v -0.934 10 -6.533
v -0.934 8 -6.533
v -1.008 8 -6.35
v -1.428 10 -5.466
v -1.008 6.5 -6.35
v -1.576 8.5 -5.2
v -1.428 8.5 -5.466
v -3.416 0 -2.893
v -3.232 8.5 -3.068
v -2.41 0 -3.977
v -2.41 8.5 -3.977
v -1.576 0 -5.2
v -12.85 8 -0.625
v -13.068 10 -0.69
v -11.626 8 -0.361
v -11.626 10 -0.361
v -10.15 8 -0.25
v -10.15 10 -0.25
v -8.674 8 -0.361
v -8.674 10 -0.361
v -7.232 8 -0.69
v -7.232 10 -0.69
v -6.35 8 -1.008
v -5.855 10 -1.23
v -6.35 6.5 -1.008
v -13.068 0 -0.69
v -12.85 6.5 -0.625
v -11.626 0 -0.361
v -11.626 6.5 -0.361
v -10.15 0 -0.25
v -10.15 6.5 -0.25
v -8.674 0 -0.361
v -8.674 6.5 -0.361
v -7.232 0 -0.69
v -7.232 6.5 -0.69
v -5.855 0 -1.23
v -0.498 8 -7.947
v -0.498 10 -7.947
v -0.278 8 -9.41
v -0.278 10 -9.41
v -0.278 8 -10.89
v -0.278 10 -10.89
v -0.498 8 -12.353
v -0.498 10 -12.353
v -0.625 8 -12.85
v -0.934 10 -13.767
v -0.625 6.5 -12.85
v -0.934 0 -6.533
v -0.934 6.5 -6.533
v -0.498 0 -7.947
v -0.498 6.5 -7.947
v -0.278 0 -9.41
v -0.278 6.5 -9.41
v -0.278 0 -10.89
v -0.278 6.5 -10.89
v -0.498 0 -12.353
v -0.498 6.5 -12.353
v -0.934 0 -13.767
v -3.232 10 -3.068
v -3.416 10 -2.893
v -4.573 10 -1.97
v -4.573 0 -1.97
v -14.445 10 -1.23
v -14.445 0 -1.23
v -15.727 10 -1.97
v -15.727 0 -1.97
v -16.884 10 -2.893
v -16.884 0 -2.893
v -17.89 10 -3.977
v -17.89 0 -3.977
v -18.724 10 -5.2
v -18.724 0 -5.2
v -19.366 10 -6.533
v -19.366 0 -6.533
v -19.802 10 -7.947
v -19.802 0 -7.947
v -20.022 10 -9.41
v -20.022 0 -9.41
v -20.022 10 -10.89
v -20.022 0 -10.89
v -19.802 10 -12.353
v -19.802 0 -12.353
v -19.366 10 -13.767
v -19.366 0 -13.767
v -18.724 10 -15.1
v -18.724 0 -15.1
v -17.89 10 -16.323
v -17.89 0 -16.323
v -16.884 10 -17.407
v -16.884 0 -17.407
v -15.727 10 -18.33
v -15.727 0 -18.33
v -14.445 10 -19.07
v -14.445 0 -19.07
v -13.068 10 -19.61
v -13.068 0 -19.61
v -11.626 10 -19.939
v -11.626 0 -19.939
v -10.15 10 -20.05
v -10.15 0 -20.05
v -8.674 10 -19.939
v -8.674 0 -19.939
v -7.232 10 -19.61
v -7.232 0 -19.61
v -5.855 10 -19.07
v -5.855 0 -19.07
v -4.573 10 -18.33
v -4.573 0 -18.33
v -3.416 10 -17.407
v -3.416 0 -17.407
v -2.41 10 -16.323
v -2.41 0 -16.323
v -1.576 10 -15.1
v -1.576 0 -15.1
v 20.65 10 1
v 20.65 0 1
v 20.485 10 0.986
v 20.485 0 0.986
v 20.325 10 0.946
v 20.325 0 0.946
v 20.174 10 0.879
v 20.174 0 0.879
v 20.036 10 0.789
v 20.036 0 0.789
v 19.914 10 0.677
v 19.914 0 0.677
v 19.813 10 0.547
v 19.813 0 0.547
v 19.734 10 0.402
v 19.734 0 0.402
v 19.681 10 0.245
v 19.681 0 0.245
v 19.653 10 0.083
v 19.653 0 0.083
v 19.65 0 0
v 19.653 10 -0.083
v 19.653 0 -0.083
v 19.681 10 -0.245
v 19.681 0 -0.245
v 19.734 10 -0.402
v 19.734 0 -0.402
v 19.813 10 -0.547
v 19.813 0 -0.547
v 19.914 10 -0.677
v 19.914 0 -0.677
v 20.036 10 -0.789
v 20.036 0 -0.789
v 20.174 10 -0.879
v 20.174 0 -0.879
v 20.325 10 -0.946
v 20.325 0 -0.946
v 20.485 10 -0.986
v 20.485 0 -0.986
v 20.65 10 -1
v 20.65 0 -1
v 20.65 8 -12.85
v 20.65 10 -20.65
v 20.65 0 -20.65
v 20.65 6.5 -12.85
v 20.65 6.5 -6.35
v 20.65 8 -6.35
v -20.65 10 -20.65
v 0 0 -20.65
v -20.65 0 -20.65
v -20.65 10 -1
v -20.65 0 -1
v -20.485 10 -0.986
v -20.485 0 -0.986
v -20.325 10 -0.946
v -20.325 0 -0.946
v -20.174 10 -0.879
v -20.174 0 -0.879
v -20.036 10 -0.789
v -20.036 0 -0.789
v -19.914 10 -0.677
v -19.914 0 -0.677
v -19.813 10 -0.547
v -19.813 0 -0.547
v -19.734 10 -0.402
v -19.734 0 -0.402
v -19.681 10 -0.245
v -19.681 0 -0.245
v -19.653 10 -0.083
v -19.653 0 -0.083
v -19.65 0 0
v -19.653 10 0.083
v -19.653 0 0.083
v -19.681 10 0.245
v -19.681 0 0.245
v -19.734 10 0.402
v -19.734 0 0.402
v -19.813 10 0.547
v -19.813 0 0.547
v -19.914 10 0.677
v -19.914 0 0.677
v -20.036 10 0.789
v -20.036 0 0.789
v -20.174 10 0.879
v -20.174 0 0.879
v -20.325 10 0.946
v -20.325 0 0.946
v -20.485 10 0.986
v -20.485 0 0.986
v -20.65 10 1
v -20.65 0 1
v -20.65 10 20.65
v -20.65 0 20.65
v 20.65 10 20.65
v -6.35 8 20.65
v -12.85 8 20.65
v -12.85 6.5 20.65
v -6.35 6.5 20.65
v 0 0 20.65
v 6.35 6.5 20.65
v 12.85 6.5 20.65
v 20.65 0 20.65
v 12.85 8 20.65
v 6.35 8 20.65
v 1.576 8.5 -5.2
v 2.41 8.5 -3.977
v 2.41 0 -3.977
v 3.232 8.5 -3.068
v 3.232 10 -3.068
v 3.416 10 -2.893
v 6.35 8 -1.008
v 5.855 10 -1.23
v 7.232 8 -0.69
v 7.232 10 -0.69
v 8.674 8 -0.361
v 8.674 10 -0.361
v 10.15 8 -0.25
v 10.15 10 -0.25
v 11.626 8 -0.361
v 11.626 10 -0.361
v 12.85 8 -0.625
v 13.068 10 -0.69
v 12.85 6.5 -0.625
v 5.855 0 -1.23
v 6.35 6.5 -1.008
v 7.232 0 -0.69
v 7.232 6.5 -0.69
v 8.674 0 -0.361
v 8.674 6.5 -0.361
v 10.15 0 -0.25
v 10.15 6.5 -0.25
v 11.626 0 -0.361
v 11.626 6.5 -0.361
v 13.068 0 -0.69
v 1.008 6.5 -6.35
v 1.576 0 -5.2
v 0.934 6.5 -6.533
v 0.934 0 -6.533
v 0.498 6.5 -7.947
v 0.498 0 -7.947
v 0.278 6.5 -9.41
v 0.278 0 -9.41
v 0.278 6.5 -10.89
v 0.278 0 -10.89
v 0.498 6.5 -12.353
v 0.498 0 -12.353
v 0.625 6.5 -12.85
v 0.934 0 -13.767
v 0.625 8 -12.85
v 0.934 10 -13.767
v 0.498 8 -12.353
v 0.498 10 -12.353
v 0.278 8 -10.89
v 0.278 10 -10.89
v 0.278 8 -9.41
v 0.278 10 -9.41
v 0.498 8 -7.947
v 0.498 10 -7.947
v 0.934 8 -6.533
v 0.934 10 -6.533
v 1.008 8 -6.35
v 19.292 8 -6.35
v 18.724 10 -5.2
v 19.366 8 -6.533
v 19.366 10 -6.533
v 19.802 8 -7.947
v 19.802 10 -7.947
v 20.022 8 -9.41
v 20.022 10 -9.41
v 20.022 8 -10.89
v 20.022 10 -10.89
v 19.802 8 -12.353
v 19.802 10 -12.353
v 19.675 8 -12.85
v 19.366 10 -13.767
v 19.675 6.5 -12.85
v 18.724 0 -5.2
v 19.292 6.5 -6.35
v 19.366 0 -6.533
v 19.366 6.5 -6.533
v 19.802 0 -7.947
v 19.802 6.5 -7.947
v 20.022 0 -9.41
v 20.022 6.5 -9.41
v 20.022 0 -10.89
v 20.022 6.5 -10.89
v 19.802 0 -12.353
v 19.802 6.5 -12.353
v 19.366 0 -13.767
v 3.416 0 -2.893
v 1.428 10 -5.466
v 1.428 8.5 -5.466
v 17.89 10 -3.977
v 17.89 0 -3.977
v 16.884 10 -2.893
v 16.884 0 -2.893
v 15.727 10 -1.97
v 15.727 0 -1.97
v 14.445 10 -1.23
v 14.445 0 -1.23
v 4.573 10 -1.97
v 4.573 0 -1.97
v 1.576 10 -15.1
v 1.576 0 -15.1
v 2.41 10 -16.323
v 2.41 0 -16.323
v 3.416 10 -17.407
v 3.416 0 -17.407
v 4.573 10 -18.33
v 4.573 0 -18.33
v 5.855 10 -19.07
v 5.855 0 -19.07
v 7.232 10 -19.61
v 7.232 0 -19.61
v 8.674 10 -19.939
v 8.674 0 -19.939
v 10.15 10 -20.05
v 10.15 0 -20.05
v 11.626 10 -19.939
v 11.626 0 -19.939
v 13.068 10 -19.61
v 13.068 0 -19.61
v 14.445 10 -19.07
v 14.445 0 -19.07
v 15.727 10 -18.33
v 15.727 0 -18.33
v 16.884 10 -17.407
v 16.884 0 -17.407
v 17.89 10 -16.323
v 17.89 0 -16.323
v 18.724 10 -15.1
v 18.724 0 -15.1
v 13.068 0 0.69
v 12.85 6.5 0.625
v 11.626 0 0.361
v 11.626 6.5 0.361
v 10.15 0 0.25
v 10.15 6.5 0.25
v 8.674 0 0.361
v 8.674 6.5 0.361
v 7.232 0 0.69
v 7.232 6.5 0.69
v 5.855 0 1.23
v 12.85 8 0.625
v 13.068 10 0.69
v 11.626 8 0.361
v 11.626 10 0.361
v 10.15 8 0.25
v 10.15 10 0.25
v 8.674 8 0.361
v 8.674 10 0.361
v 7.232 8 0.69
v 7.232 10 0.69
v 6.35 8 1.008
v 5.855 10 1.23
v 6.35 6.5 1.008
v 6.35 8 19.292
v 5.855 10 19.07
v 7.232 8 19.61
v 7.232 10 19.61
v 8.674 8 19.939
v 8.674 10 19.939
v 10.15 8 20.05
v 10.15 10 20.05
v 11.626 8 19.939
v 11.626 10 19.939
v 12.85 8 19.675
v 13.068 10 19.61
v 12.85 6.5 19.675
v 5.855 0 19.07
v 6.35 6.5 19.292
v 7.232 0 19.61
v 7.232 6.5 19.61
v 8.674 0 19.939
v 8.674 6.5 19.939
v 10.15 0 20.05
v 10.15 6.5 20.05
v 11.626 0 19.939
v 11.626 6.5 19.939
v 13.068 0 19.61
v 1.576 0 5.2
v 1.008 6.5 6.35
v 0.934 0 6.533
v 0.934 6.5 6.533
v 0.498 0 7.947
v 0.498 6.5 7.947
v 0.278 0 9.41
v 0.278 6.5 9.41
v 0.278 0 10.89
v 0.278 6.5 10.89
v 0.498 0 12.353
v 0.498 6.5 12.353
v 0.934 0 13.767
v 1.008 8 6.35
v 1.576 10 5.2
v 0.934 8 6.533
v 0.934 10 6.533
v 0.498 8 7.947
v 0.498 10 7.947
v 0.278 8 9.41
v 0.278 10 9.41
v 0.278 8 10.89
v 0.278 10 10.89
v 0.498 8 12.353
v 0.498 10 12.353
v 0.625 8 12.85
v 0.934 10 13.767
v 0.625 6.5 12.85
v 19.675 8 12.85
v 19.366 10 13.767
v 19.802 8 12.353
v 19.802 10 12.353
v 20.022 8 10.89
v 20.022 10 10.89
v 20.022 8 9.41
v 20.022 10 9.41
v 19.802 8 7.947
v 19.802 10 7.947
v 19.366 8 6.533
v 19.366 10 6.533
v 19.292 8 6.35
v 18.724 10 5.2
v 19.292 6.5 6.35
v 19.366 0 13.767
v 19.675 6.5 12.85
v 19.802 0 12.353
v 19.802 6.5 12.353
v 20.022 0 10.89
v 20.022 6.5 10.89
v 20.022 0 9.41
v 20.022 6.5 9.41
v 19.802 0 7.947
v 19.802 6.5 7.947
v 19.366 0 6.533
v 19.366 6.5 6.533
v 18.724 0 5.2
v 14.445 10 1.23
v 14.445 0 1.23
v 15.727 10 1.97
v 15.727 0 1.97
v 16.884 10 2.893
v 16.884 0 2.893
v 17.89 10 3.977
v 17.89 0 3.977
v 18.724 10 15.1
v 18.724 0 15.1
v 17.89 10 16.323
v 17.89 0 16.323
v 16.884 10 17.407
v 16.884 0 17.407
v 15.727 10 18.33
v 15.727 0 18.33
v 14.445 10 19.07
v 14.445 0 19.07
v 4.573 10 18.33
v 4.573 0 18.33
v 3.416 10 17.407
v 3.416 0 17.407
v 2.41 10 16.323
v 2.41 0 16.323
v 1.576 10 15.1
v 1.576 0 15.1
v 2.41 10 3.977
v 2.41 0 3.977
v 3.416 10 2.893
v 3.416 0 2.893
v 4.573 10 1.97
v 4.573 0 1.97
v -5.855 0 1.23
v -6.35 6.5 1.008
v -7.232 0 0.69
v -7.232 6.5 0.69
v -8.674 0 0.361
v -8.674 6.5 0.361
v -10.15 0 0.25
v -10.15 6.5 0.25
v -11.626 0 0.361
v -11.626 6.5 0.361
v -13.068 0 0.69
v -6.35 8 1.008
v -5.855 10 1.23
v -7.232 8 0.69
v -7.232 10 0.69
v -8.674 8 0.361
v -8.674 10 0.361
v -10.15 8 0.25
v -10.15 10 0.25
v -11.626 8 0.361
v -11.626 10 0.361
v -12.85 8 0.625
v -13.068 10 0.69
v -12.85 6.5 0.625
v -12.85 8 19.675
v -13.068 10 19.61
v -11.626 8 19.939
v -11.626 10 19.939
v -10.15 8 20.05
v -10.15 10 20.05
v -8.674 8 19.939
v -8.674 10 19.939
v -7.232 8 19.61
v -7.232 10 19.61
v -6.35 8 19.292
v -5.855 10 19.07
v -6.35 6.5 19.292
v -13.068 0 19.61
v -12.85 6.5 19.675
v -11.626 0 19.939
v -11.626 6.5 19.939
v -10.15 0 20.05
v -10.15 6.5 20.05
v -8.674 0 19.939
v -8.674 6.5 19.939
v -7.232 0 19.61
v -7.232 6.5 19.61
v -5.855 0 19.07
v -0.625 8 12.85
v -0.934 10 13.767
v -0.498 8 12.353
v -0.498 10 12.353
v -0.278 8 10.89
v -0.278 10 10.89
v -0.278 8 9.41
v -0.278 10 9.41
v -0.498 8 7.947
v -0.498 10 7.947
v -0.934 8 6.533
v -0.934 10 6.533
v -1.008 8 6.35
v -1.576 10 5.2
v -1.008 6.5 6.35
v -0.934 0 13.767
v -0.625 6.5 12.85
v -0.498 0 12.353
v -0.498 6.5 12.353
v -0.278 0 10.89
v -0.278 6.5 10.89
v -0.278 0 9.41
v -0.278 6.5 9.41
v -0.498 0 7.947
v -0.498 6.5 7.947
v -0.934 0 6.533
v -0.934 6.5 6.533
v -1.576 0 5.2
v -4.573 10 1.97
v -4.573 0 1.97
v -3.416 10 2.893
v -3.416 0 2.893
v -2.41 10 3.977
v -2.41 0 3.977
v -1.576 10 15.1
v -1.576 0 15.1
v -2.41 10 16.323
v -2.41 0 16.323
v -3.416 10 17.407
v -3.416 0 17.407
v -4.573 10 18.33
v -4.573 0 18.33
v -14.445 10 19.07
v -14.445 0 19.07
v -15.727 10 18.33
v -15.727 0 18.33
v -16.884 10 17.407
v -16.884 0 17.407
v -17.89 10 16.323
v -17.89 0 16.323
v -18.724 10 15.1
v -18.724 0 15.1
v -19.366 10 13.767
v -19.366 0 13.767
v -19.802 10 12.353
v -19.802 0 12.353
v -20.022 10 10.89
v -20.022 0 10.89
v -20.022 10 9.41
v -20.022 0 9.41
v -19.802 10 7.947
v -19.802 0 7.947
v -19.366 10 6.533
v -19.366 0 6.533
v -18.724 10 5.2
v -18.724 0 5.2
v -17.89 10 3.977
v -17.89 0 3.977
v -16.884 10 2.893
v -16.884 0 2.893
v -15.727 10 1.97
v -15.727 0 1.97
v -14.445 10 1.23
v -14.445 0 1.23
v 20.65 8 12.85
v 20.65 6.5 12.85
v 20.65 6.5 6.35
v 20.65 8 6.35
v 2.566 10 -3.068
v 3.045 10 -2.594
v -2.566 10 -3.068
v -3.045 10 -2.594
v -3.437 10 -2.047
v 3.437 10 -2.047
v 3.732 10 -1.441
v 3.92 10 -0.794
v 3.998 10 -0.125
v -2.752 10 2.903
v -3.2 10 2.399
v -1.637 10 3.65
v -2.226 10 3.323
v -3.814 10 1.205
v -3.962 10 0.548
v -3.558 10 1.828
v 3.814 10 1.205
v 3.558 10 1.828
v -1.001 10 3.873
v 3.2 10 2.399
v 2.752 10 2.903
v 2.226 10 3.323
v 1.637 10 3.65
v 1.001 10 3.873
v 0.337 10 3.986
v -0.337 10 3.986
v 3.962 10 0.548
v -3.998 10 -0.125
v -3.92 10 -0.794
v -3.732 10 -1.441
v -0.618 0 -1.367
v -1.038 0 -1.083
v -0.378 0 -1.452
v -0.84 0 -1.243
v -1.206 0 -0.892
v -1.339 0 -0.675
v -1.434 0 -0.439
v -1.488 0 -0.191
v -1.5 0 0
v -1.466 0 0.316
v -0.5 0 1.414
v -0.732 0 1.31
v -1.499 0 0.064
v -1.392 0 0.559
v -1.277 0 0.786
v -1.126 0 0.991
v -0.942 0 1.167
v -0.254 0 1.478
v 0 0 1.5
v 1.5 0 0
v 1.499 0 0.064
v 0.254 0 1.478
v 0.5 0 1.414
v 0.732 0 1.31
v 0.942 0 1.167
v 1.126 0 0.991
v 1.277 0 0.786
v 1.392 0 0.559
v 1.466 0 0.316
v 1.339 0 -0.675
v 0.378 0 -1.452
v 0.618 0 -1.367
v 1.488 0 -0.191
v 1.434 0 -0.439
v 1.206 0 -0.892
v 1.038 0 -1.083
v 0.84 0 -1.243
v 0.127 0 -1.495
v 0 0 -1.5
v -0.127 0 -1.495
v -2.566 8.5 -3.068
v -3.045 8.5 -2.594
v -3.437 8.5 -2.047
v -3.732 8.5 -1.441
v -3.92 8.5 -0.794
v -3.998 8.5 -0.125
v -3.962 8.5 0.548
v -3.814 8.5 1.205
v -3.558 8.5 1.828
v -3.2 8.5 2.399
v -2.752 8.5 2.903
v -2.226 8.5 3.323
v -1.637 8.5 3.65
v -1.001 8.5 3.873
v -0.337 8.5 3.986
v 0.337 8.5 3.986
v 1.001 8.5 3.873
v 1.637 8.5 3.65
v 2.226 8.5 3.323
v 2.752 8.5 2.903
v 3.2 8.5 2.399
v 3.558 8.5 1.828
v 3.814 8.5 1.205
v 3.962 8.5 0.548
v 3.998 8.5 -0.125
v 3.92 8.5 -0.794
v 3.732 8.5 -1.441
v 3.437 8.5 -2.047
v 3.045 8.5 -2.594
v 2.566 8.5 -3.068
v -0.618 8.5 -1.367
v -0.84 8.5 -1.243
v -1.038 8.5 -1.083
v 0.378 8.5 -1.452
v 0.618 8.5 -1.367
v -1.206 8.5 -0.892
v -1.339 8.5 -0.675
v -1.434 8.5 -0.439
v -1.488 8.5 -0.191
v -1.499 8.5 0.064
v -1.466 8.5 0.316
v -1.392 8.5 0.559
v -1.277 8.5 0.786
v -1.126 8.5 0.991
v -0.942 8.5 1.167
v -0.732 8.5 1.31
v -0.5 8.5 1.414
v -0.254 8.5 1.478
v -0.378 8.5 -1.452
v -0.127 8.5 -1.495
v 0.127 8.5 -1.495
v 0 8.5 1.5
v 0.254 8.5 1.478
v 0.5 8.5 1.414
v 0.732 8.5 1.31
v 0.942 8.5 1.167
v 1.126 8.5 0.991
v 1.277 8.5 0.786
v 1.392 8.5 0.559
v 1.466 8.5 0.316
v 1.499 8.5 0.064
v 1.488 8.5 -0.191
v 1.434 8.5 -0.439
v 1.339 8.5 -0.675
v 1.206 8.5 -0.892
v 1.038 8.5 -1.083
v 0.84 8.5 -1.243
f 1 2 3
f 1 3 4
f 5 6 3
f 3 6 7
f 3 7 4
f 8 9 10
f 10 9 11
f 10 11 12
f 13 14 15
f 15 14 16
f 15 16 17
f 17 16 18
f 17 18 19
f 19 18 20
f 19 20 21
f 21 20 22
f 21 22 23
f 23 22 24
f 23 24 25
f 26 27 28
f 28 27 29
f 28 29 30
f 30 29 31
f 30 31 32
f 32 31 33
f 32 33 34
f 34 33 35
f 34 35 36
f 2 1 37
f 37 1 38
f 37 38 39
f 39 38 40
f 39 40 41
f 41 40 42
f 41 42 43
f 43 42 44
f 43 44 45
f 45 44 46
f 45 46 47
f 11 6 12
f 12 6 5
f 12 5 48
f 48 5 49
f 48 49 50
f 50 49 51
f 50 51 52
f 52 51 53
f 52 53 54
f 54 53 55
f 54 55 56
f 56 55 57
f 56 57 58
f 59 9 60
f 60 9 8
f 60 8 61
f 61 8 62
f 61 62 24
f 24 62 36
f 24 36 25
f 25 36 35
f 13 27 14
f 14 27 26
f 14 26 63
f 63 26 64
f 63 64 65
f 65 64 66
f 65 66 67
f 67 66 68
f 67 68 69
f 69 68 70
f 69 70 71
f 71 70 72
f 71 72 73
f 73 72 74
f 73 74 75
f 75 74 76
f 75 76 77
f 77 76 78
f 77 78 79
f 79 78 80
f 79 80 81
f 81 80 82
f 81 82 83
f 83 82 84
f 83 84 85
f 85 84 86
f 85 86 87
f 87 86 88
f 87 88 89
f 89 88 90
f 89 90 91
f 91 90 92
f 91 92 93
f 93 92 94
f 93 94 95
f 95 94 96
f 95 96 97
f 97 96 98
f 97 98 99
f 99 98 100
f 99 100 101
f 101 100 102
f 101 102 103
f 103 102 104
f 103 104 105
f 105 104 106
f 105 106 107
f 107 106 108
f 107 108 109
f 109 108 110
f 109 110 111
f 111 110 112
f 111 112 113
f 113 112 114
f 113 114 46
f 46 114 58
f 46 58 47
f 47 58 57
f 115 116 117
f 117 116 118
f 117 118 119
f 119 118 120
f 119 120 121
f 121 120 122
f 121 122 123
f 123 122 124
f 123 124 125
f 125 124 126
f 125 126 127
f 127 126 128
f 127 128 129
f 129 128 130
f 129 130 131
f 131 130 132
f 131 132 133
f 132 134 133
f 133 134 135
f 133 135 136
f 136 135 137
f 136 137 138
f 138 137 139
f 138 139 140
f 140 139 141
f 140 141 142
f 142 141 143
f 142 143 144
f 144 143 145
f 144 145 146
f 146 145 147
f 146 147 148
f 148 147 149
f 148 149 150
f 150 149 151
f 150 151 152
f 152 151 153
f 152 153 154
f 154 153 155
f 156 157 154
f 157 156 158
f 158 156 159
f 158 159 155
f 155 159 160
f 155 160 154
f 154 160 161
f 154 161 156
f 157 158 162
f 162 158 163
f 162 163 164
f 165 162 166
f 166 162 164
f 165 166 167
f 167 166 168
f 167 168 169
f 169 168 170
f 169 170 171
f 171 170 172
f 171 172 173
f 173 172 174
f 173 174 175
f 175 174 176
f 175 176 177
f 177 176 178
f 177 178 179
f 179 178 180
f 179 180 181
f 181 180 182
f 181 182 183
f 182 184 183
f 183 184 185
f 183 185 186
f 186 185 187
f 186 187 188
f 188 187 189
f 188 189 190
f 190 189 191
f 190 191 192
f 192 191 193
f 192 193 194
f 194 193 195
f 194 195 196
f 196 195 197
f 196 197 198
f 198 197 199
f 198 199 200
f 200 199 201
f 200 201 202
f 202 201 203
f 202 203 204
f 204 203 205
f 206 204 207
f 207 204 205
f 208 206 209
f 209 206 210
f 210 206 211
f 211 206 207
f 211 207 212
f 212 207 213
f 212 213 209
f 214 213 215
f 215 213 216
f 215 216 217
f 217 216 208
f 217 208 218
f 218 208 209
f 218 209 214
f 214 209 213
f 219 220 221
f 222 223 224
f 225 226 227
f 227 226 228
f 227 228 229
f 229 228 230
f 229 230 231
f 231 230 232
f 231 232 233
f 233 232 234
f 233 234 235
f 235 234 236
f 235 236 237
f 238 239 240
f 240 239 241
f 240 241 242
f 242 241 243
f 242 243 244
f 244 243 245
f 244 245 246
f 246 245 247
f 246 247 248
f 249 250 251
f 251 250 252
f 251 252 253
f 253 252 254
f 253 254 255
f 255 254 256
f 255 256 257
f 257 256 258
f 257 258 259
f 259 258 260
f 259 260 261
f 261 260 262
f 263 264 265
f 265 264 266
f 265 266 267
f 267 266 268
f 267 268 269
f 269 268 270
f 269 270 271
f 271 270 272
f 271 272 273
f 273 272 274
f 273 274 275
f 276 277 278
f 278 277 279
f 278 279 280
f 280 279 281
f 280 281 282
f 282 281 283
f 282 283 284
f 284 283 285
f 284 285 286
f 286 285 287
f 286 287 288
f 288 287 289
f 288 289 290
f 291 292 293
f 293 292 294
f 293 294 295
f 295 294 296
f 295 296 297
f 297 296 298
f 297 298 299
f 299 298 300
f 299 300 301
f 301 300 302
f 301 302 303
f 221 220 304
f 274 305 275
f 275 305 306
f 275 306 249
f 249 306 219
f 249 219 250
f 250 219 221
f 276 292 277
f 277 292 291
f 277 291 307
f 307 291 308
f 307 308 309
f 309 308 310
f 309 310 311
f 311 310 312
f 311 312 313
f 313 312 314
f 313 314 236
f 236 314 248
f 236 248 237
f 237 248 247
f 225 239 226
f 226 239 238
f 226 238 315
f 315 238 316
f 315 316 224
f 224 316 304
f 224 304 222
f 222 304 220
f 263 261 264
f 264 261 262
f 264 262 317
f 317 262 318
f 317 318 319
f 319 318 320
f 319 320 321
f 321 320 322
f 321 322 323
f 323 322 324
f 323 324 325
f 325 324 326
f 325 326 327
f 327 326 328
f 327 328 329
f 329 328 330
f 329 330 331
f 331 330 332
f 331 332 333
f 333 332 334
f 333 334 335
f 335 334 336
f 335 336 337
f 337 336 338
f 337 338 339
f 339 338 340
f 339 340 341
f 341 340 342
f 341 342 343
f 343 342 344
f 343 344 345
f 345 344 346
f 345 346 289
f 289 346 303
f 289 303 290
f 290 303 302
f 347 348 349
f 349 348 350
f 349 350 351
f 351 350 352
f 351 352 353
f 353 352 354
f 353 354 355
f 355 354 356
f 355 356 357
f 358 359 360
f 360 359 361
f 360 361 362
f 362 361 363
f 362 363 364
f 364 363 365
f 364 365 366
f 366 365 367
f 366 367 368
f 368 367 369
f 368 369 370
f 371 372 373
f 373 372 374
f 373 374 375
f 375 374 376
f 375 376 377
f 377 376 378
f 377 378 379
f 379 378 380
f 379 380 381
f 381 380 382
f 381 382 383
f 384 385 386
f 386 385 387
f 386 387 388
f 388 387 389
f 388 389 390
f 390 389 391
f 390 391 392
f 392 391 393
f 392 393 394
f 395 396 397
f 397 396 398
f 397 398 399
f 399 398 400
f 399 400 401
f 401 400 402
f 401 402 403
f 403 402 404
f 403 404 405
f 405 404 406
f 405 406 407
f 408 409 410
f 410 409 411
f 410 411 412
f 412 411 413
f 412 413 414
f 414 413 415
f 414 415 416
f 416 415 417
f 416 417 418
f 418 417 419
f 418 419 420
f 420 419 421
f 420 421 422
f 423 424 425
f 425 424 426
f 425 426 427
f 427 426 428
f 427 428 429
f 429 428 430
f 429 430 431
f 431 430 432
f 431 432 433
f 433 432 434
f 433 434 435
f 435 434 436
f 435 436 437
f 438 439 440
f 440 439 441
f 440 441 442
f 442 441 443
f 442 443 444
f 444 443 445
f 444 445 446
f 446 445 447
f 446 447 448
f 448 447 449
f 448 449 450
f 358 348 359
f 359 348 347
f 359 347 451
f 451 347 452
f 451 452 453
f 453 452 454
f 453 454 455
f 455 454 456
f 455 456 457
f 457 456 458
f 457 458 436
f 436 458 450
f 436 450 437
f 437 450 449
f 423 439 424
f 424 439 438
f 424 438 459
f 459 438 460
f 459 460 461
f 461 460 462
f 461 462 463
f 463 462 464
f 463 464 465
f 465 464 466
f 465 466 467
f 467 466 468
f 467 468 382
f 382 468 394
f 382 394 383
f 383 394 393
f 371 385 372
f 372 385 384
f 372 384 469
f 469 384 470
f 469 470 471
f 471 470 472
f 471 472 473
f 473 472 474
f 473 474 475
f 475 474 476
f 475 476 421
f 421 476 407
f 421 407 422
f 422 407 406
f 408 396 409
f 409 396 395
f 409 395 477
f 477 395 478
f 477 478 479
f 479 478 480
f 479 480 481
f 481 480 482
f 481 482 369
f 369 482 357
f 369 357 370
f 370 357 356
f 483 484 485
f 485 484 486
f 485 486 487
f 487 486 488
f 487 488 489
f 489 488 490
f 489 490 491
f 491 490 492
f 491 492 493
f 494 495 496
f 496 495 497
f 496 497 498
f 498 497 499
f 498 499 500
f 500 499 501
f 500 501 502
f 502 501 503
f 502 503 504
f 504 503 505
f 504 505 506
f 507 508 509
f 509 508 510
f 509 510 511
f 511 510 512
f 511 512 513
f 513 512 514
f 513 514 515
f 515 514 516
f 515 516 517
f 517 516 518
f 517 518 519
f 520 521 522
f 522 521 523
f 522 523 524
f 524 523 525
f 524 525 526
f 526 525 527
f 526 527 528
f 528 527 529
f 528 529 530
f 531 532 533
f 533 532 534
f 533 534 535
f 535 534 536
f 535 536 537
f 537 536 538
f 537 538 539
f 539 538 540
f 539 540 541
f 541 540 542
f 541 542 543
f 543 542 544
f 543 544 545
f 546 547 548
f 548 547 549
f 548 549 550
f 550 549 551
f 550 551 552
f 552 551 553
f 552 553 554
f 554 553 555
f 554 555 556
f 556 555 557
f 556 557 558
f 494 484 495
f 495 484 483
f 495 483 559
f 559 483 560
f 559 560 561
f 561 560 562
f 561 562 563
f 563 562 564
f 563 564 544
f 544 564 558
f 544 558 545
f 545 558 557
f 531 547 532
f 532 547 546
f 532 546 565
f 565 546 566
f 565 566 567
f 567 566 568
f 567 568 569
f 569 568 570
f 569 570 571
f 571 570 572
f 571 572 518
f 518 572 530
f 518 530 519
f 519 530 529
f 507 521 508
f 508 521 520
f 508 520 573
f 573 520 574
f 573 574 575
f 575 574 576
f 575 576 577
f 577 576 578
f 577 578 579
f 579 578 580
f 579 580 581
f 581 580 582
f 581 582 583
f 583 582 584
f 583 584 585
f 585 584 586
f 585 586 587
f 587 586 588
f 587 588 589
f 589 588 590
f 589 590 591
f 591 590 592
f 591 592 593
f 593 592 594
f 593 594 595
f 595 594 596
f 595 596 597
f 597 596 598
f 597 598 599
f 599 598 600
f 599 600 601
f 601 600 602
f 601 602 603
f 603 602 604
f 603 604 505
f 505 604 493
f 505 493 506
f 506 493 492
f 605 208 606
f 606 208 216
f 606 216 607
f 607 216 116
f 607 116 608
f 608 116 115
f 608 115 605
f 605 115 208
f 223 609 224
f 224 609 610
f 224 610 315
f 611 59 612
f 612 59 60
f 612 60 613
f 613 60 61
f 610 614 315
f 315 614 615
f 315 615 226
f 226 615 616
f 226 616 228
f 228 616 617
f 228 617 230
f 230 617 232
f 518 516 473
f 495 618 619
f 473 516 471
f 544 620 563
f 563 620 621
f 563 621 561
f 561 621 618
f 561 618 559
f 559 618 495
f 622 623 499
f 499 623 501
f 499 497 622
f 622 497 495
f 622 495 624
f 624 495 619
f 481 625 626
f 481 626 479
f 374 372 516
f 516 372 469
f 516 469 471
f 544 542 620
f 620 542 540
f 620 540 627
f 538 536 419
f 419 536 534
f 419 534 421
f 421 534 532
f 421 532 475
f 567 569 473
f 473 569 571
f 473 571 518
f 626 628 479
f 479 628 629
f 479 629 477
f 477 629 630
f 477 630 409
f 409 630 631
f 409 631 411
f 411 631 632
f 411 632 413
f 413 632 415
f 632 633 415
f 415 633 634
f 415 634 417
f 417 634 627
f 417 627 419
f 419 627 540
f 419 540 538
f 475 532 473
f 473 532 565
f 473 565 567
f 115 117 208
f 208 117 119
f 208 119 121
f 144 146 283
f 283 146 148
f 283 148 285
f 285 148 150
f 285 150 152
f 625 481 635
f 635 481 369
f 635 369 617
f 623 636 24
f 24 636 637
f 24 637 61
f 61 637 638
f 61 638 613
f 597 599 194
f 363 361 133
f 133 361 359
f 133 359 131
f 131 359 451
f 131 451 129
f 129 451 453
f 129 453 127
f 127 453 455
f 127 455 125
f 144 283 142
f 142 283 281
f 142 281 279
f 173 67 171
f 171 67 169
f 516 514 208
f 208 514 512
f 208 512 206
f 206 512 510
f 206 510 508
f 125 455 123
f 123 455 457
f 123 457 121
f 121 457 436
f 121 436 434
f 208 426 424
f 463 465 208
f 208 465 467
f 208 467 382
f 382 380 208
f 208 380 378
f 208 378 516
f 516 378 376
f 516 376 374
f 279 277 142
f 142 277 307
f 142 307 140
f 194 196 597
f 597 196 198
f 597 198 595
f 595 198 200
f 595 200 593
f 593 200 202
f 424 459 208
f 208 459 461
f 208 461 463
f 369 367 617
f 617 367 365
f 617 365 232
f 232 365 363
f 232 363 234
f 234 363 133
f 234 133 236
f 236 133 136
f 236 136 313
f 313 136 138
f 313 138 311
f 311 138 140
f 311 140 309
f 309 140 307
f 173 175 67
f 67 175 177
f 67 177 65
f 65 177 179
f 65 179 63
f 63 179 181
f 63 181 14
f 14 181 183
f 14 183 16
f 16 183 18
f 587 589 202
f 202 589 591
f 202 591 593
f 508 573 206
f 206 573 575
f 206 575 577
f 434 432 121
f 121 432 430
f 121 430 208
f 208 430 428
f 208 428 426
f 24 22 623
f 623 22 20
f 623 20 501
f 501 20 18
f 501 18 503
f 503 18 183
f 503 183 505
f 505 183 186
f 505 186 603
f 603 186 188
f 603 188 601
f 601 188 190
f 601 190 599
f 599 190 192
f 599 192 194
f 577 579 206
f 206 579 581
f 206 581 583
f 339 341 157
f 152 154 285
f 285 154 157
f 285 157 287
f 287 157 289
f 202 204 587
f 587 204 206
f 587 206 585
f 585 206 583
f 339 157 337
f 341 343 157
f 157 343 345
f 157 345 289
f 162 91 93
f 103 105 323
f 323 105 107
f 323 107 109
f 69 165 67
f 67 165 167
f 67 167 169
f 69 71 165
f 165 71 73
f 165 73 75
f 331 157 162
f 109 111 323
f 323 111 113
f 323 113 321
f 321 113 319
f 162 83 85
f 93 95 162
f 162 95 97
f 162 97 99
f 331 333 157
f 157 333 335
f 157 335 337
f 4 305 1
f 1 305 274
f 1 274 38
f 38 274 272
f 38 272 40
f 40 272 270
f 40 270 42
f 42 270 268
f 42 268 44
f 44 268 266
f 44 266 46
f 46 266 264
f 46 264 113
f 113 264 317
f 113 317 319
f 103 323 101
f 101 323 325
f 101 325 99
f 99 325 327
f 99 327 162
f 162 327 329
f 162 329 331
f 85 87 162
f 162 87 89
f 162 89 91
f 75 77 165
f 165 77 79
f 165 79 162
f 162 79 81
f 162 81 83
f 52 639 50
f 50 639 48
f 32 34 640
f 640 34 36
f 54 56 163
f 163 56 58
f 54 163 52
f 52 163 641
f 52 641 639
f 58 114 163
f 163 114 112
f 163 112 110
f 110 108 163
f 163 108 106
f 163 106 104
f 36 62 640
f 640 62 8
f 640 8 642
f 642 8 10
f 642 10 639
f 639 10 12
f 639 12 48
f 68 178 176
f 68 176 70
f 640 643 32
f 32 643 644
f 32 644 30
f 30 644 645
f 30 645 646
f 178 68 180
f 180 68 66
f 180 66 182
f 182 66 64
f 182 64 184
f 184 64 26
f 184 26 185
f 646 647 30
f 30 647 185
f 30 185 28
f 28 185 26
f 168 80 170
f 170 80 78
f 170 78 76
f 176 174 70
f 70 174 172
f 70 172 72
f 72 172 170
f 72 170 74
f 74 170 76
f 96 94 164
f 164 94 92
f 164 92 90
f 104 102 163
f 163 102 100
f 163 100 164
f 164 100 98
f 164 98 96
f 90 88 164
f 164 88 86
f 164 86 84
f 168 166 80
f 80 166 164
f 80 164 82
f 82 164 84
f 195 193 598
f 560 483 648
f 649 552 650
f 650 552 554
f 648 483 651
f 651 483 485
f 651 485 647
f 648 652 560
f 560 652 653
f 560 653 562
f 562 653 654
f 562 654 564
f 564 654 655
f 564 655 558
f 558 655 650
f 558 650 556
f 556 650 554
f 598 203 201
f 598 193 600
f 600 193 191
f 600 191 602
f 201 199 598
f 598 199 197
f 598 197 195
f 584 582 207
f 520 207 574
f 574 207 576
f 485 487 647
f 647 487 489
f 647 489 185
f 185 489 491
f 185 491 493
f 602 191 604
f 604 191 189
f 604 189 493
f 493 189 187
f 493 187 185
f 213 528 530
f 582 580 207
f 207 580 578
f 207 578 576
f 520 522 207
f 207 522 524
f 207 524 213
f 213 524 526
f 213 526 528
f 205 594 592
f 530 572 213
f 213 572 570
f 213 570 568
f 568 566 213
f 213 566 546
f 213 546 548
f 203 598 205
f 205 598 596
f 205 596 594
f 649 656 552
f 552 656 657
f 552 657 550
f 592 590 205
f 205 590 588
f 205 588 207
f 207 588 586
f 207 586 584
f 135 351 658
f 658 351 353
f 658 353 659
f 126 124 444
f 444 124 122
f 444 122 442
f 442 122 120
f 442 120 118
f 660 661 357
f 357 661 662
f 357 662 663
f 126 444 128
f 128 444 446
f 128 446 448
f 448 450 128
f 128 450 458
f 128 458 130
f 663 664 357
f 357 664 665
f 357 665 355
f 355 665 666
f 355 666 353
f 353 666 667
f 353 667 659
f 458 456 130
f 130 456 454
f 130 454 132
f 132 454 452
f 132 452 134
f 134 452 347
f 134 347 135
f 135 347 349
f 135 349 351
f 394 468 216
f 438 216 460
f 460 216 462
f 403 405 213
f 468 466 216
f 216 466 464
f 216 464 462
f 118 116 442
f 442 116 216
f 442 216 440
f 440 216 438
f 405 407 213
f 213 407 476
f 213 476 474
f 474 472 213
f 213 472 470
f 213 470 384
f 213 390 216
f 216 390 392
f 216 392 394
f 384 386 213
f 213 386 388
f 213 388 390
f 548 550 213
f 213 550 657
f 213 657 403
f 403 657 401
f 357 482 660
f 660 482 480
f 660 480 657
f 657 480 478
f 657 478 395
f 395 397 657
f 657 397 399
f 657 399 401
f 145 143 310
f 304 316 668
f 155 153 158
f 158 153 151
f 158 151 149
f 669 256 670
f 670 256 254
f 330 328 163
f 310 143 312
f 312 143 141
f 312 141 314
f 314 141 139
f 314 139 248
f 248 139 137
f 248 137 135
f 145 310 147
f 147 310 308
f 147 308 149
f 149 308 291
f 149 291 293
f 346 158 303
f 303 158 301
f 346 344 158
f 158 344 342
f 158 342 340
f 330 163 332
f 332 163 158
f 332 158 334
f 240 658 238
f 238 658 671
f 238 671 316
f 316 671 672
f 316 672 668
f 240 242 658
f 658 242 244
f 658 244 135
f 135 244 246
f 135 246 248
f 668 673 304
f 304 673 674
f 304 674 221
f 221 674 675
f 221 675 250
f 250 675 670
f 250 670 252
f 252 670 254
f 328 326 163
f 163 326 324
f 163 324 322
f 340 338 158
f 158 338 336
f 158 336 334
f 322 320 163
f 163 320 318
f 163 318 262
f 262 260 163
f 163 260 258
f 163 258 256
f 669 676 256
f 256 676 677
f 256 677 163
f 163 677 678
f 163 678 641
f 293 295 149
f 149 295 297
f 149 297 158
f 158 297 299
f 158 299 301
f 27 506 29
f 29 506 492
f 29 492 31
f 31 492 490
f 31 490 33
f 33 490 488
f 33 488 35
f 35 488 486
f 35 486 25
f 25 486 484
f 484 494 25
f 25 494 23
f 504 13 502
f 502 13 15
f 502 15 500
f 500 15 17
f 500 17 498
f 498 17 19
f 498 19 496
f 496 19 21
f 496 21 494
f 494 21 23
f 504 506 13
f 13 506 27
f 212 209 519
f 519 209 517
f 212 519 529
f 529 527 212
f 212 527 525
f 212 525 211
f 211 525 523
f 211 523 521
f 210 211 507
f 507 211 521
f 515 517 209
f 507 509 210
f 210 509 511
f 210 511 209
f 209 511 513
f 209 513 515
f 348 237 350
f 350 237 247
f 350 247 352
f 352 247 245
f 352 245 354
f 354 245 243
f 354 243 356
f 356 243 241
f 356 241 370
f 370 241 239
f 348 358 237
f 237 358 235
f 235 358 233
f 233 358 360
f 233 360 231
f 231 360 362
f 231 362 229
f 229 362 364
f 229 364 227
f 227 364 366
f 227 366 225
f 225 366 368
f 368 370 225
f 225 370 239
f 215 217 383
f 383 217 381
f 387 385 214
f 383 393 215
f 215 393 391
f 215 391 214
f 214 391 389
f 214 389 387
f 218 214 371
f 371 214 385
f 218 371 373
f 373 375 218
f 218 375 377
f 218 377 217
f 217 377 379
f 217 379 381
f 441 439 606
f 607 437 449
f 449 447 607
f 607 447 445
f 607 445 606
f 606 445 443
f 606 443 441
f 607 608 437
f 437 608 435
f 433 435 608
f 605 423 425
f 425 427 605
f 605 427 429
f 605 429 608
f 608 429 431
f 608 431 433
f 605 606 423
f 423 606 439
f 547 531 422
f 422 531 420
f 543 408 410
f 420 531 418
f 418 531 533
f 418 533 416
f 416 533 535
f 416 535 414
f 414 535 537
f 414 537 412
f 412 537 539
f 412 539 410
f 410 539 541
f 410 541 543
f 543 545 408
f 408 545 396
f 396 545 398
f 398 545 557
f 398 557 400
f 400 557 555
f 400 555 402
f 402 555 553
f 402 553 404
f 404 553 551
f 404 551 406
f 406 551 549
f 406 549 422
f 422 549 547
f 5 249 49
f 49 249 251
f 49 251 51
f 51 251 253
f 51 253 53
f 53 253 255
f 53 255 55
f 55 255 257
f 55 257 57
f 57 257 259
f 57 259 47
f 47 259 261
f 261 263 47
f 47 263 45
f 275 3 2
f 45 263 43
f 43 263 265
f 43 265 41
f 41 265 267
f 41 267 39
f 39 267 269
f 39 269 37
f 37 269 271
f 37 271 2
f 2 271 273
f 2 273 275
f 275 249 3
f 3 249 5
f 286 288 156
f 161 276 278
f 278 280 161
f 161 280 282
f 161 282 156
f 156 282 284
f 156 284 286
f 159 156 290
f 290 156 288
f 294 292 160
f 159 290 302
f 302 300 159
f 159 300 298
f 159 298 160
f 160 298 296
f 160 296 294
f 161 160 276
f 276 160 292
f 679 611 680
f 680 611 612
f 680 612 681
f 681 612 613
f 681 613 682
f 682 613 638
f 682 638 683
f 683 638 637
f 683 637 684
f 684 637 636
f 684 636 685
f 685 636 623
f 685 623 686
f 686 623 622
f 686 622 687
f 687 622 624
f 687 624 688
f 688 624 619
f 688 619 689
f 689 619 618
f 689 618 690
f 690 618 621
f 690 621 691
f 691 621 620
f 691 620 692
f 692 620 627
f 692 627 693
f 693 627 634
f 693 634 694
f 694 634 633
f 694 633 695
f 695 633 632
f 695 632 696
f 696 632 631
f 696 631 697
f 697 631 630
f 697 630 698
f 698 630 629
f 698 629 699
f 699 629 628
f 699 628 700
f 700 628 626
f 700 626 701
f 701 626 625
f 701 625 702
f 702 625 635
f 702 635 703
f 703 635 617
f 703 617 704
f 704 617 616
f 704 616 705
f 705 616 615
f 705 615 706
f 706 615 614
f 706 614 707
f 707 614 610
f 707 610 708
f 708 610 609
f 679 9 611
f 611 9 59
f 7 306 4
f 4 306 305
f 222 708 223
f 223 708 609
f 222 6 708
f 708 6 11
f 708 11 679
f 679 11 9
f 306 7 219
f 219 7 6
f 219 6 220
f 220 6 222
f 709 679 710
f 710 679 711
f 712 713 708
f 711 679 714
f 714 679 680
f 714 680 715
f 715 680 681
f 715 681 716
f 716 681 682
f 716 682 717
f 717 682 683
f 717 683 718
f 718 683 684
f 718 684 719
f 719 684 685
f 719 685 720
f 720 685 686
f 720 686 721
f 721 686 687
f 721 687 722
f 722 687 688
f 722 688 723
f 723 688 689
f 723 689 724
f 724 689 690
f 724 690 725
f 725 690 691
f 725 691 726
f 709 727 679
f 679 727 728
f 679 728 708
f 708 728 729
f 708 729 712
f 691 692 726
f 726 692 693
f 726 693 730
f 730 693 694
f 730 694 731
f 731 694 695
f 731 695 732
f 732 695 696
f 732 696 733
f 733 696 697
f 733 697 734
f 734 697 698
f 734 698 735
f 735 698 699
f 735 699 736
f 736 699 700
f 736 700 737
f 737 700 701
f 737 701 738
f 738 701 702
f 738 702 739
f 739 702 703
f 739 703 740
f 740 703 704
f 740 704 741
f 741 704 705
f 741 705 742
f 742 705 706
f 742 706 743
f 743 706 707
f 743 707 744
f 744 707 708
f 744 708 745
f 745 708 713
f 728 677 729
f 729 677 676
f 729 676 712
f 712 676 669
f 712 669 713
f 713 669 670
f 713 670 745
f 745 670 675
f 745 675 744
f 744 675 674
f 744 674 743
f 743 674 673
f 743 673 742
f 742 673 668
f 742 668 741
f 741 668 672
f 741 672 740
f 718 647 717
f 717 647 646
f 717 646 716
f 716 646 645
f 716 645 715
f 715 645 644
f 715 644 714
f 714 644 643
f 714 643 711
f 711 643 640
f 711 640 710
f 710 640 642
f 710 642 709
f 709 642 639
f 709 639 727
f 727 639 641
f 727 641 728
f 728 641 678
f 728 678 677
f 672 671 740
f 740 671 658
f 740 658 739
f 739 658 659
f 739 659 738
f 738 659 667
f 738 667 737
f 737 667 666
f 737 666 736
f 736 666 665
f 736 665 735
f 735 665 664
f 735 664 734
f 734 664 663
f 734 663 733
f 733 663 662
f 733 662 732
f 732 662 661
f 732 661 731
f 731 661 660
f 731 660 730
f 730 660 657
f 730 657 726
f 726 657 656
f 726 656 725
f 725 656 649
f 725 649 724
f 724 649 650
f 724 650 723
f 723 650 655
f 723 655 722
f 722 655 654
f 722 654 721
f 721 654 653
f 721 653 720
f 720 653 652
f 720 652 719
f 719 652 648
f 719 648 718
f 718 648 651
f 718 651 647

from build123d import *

# Parameters (mm, degrees)
CROQUIS1_R              = 9.9
SALIENTE_EXTRUIR1_DEPTH = 10
CROQUIS3_W              = 6.5
CROQUIS3_H              = 1.5
CORTAR_EXTRUIR1_DEPTH   = 26
MATRIZC1_COUNT          = 2
MATRIZC1_ANGLE          = 90
CORTAR_EXTRUIR3_DEPTH   = 1.5
CROQUIS6_R              = 1.5
CORTAR_EXTRUIR4_DEPTH   = 48.5


with BuildPart() as part:
    # Croquis1 → Saliente-Extruir1 (new body)
    with BuildSketch(Plane(origin=(0, 0, 0), x_dir=(1, 0, 0), z_dir=(0, 1, 0))):
        with BuildLine():
            Line((20.65, 20.65), (-20.65, 20.65))
            Line((-20.65, 20.65), (-20.65, 1))
            ThreePointArc((-20.65, 1), (-19.942893219, 0.707106781), (-19.65, 0))
            ThreePointArc((-19.65, 0), (-19.942893219, -0.707106781), (-20.65, -1))
            Line((-20.65, -1), (-20.65, -20.65))
            Line((-20.65, -20.65), (20.65, -20.65))
            Line((20.65, -20.65), (20.65, -1))
            ThreePointArc((20.65, -1), (19.65, 0), (20.65, 1))
            Line((20.65, 1), (20.65, 20.65))
        make_face()
        with Locations((-10.15, -10.15)):
            Circle(CROQUIS1_R, mode=Mode.SUBTRACT)
        with Locations((10.15, -10.15)):
            Circle(CROQUIS1_R, mode=Mode.SUBTRACT)
        with Locations((-10.15, 10.15)):
            Circle(CROQUIS1_R, mode=Mode.SUBTRACT)
        with Locations((10.15, 10.15)):
            Circle(CROQUIS1_R, mode=Mode.SUBTRACT)
    extrude(amount=SALIENTE_EXTRUIR1_DEPTH)

    # Croquis3 → Cortar-Extruir1 (cut)
    with BuildSketch(Plane.XY.offset(20.65)):
        with Locations((-9.6, 7.25)):
            Rectangle(CROQUIS3_W, CROQUIS3_H)
        with Locations((9.6, 7.25)):
            Rectangle(CROQUIS3_W, CROQUIS3_H)
    cortar_extruir1 = extrude(amount=-CORTAR_EXTRUIR1_DEPTH, mode=Mode.SUBTRACT)

    # MatrizC1: Cortar-Extruir1 ×2 about axis
    matrizc1_axis = Axis((0, 25.469690993, 0), (0, 1, 0))
    for i in range(1, MATRIZC1_COUNT):
        add(cortar_extruir1.rotate(matrizc1_axis, i * MATRIZC1_ANGLE / (MATRIZC1_COUNT - 1)), mode=Mode.SUBTRACT)

    # Croquis5 → Cortar-Extruir3 (cut)
    with BuildSketch(Plane(origin=(0, 10, 0), x_dir=(1, 0, 0), z_dir=(0, 1, 0))):
        with BuildLine():
            ThreePointArc((4, 0), (3.623813236, 1.693510446), (2.566011184, 3.068482785))
            Line((2.566011184, 3.068482785), (-2.566011184, 3.068482785))
            ThreePointArc((-2.566011184, 3.068482785), (-1.693510446, -3.623813236), (4, 0))
        make_face()
        with BuildLine():
            Line((-2.566011184, 3.068482785), (2.566011184, 3.068482785))
            ThreePointArc((2.566011184, 3.068482785), (0, 4), (-2.566011184, 3.068482785))
        make_face()
        with BuildLine():
            ThreePointArc((3.231754996, 3.068482785), (2.238589759, 4.198564207), (1.428132105, 5.466089196))
            Line((1.428132105, 5.466089196), (-1.428132105, 5.466089196))
            ThreePointArc((-1.428132105, 5.466089196), (-2.238589759, 4.198564207), (-3.231754996, 3.068482785))
            Line((-3.231754996, 3.068482785), (-2.566011184, 3.068482785))
            ThreePointArc((-2.566011184, 3.068482785), (0, 4), (2.566011184, 3.068482785))
            Line((2.566011184, 3.068482785), (3.231754996, 3.068482785))
        make_face()
    extrude(amount=-CORTAR_EXTRUIR3_DEPTH, mode=Mode.SUBTRACT)

    # Croquis6 → Cortar-Extruir4 (cut)
    with BuildSketch(Plane(origin=(0, 8.5, 0), x_dir=(1, 0, 0), z_dir=(0, 1, 0))):
        Circle(CROQUIS6_R)
    extrude(amount=-CORTAR_EXTRUIR4_DEPTH, mode=Mode.SUBTRACT)


solid = part.part
